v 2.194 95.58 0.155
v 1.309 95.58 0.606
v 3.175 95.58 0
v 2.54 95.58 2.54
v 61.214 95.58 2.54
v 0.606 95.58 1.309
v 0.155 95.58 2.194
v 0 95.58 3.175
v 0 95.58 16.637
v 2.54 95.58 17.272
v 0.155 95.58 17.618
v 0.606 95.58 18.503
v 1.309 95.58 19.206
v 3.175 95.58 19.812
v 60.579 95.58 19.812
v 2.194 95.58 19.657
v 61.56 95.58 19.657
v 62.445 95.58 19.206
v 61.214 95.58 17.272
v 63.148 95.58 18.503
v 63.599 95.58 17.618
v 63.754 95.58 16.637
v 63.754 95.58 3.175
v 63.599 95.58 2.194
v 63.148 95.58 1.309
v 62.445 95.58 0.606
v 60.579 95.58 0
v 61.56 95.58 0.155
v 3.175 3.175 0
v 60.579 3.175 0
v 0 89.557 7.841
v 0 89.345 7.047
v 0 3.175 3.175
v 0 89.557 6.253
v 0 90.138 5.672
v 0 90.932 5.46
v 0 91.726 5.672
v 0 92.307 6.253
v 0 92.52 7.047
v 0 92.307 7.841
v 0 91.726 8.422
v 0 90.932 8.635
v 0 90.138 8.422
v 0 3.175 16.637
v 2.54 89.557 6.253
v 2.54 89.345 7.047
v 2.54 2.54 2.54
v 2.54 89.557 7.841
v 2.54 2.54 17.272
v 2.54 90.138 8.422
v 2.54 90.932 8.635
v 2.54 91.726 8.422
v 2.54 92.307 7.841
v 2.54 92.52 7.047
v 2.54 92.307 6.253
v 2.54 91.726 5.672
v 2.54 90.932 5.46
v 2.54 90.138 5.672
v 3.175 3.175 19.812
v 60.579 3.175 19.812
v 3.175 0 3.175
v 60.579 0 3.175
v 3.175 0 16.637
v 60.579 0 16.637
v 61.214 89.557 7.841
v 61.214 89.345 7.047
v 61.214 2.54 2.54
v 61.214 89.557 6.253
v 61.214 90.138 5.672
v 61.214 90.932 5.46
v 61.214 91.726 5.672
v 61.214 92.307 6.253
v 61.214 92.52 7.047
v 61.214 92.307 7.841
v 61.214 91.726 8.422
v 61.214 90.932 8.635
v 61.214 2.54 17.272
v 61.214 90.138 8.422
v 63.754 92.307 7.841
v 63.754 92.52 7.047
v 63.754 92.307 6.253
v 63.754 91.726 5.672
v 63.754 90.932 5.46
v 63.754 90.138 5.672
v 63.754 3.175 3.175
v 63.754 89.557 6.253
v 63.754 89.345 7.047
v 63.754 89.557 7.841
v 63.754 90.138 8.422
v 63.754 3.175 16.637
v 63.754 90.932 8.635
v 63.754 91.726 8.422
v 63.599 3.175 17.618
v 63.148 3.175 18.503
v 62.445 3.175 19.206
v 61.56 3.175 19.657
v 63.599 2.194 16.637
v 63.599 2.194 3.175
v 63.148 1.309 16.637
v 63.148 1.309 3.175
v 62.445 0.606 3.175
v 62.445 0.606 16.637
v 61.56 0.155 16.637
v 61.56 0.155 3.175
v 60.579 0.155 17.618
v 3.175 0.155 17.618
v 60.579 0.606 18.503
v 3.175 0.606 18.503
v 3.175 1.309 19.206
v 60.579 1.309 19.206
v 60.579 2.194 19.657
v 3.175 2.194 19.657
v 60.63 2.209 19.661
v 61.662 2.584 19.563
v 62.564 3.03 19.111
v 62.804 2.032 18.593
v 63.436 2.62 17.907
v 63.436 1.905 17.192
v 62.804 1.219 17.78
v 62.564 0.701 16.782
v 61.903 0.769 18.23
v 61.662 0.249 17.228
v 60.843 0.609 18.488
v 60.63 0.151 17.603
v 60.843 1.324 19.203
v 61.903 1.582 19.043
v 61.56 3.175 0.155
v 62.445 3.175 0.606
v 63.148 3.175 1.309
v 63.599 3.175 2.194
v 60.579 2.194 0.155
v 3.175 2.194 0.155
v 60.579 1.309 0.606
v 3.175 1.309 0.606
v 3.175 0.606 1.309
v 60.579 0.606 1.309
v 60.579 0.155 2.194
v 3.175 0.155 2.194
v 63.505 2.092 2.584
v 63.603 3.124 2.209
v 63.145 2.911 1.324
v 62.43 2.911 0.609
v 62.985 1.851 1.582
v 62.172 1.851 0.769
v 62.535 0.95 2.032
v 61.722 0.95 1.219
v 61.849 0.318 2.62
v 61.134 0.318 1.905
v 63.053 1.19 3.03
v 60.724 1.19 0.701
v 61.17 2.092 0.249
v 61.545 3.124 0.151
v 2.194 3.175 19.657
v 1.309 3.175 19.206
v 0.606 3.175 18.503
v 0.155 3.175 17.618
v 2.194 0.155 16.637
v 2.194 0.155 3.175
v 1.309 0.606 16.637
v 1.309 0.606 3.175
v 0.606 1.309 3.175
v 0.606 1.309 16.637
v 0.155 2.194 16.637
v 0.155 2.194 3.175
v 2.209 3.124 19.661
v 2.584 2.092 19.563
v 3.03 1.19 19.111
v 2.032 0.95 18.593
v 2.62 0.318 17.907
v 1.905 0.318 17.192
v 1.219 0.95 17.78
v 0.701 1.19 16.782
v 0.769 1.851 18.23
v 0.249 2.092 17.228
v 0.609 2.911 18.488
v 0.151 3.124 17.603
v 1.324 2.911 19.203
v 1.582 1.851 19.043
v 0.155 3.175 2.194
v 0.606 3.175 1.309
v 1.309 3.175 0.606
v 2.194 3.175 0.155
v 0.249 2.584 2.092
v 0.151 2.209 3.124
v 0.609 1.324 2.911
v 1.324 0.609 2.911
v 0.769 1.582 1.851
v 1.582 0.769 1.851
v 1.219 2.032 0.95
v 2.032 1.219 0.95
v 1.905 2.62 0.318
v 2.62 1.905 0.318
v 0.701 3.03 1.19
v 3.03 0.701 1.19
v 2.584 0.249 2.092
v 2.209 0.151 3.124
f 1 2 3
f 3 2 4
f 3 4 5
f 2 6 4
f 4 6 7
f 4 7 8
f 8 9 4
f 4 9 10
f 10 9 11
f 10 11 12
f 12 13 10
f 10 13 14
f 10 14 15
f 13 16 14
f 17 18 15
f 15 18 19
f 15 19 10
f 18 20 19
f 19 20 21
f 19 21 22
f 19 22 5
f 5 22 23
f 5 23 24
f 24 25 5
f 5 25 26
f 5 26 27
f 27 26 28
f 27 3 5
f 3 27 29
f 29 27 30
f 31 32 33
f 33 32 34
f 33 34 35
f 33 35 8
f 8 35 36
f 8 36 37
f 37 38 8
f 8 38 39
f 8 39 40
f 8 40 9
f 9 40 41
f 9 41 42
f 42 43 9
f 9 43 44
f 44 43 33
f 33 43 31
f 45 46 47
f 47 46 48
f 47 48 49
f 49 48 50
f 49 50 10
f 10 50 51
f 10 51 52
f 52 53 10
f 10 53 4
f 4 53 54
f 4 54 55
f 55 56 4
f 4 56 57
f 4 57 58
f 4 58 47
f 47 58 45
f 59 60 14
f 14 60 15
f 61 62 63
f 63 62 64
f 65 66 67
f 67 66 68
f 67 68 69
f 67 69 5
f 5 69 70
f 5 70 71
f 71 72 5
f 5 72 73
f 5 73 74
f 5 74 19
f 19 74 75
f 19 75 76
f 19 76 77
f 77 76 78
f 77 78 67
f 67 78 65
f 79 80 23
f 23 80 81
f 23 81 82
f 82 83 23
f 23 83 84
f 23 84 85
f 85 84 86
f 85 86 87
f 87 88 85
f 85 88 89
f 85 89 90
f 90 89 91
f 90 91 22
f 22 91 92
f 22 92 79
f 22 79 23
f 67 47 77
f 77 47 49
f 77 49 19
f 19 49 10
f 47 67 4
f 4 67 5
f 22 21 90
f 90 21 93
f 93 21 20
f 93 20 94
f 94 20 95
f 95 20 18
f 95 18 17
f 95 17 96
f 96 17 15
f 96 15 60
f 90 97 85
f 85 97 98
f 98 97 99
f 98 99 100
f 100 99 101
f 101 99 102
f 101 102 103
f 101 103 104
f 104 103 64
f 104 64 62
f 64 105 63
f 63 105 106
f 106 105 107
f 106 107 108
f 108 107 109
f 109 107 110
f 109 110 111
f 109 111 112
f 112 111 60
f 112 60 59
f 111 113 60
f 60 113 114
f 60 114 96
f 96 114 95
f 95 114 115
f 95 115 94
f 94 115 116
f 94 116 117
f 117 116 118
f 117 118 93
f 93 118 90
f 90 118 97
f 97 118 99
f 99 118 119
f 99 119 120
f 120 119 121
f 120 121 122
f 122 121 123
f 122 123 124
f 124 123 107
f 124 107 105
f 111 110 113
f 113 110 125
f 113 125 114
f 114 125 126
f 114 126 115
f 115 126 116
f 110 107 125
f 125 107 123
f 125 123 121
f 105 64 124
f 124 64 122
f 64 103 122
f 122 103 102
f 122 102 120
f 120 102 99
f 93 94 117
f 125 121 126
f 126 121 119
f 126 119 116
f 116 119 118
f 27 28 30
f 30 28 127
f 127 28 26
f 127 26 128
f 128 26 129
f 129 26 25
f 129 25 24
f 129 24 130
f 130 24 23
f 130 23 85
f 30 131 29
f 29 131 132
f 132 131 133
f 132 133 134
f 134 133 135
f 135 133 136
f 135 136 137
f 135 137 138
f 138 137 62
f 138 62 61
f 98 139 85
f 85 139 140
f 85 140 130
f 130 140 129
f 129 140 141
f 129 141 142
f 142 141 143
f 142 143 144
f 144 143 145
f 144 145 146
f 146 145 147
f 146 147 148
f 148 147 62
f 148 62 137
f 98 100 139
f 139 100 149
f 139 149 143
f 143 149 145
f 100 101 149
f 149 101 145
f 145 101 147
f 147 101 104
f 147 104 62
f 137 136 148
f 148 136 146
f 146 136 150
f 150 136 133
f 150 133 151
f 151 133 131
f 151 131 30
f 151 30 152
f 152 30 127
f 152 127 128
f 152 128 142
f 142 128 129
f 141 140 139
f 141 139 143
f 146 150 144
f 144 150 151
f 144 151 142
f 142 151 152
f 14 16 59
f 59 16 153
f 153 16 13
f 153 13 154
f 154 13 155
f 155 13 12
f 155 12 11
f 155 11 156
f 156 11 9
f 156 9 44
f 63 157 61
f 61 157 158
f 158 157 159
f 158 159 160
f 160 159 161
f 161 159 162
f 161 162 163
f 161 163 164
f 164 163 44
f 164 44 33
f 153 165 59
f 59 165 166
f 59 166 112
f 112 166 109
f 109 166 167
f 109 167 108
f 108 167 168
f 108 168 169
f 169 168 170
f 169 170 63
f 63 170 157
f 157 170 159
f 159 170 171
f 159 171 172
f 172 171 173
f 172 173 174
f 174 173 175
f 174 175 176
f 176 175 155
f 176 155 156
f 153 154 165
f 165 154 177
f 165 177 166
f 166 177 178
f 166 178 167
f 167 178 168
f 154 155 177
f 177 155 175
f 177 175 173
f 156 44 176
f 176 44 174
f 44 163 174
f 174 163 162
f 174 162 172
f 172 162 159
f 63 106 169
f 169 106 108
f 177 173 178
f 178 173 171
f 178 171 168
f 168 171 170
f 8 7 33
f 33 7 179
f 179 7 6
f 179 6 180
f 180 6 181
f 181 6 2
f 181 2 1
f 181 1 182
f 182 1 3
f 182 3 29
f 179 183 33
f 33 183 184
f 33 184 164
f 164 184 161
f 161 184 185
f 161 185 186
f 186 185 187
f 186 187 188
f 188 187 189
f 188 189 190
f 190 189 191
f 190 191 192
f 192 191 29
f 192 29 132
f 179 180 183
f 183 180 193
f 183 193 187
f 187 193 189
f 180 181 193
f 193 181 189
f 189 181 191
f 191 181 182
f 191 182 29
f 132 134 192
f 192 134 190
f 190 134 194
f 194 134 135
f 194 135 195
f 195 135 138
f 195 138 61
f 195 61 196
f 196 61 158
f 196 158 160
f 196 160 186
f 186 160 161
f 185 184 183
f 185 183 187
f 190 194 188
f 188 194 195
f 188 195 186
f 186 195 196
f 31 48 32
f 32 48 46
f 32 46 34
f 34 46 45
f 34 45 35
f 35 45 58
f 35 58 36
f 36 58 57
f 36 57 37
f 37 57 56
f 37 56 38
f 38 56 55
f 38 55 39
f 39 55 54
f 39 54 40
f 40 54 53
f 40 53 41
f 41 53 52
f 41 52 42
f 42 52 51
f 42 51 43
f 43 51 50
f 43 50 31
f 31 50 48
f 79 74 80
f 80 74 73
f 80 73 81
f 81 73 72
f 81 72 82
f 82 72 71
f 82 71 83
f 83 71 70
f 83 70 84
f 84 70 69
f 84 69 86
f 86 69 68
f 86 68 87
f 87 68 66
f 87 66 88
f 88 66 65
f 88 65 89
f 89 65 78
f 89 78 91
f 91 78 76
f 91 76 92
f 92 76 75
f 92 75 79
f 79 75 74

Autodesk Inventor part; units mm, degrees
ref_plane "YZ Plane" through (0, 0, 0) normal (1, 0, 0) x (0, 1, 0)
ref_plane "XZ Plane" through (0, 0, 0) normal (0, 1, 0) x (-1, 0, 0)
ref_plane "XY Plane" through (0, 0, 0) normal (0, 0, 1) x (1, 0, 0)
sketch "Sketch1" plane through (0, 0, 0) normal (0, 0, 1) x (1, 0, 0)
  line L0 (0, 0) -> (63.754, 0)
  line L1 (63.754, 0) -> (63.754, 95.5802)
  line L2 (63.754, 95.5802) -> (0, 95.5802)
  line L3 (0, 95.5802) -> (0, 0)
  line L4 (4.6078, 104.8429) -> (58.4558, 104.8429)
  line L5 (58.4558, 104.8429) -> (58.4558, 3.2429)
  line L6 (58.4558, 3.2429) -> (4.6078, 3.2429)
  line L7 (4.6078, 3.2429) -> (4.6078, 104.8429)
  dimension "d0" = 63.754
  dimension "d1" = 95.5802
  dimension "d2" = 53.848
  dimension "d3" = 101.6
extrude "Extrusion1" add sketch "Sketch1" along normal blind 19.812 contours L3 L2 L7 L6 L5 L1 L0 | L2 L5 L6 L7
shell "Shell1" thickness 2.54 removed faces 1 at (42.5027, 95.5802, 6.604)
fillet "Fillet1" radius 3.175 8 edges at (63.754, 47.7901, 19.812) (0, 47.7901, 19.812) (63.754, 47.7901, 0) (0, 47.7901, 0) (31.877, 0, 0) (63.754, 0, 9.906) (0, 0, 9.906) (31.877, 0, 19.812)
hole "Hole1" at (63.754, 90.9321, 7.0472) direction (-1, 0, 0) diameter 3.175 end through all
properties part number "Mk2"
